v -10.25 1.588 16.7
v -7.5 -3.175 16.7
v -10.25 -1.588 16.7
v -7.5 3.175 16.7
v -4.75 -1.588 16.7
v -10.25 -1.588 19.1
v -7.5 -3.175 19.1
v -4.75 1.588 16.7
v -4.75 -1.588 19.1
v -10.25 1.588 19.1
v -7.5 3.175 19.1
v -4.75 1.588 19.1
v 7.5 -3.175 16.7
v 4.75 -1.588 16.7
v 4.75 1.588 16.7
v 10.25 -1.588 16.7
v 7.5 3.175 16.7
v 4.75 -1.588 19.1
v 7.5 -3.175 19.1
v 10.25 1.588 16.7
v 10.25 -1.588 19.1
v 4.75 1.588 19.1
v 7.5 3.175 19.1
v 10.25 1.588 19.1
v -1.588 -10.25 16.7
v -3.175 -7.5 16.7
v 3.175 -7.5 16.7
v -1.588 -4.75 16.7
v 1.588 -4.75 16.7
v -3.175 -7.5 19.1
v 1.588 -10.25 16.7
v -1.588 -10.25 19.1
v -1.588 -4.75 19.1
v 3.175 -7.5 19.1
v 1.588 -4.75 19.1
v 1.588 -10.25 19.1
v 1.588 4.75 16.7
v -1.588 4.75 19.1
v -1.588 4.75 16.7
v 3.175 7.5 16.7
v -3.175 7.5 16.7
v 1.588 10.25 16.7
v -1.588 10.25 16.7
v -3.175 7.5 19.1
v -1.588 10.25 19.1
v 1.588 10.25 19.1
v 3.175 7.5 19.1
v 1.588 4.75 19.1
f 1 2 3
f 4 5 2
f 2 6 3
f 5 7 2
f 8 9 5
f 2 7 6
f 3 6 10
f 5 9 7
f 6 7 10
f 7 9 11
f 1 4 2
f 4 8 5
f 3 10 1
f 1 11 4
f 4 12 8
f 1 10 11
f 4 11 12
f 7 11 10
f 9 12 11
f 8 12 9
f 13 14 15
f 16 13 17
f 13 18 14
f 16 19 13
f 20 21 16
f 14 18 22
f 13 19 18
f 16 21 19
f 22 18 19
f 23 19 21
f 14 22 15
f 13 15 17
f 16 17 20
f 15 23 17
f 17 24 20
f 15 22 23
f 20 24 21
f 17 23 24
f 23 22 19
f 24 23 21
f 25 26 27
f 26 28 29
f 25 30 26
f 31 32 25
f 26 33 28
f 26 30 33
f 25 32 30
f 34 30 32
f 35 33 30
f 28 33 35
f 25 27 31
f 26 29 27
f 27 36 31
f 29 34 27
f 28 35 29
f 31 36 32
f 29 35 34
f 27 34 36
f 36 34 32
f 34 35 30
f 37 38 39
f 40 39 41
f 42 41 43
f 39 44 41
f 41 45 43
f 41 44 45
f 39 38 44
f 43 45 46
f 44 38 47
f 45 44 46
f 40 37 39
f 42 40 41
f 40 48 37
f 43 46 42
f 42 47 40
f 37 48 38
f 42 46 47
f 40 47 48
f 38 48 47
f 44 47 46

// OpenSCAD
$fn = 50;

difference() {
	union() {
		translate(v = [-7.5, 0, 16.700000000000003]) {
			rotate(a = [0, 0, 210.0]) {
				linear_extrude(height = 2.4) {
					polygon(points = [[3.1754264805429417, 0.0], [1.5877132402714713, 2.75], [-1.5877132402714702, 2.7500000000000004], [-3.1754264805429417, 3.888775875324659e-16], [-1.5877132402714722, -2.7499999999999996], [1.5877132402714687, -2.7500000000000013]]);
				}
			}
		}
		translate(v = [7.5, 0, 16.700000000000003]) {
			rotate(a = [0, 0, 30.0]) {
				linear_extrude(height = 2.4) {
					polygon(points = [[3.1754264805429417, 0.0], [1.5877132402714713, 2.75], [-1.5877132402714702, 2.7500000000000004], [-3.1754264805429417, 3.888775875324659e-16], [-1.5877132402714722, -2.7499999999999996], [1.5877132402714687, -2.7500000000000013]]);
				}
			}
		}
		translate(v = [0, -7.5, 16.700000000000003]) {
			rotate(a = [0, 0, -60.0]) {
				linear_extrude(height = 2.4) {
					polygon(points = [[3.1754264805429417, 0.0], [1.5877132402714713, 2.75], [-1.5877132402714702, 2.7500000000000004], [-3.1754264805429417, 3.888775875324659e-16], [-1.5877132402714722, -2.7499999999999996], [1.5877132402714687, -2.7500000000000013]]);
				}
			}
		}
		translate(v = [0, 7.5, 16.700000000000003]) {
			rotate(a = [0, 0, 120.0]) {
				linear_extrude(height = 2.4) {
					polygon(points = [[3.1754264805429417, 0.0], [1.5877132402714713, 2.75], [-1.5877132402714702, 2.7500000000000004], [-3.1754264805429417, 3.888775875324659e-16], [-1.5877132402714722, -2.7499999999999996], [1.5877132402714687, -2.7500000000000013]]);
				}
			}
		}
	}
	union();
}
